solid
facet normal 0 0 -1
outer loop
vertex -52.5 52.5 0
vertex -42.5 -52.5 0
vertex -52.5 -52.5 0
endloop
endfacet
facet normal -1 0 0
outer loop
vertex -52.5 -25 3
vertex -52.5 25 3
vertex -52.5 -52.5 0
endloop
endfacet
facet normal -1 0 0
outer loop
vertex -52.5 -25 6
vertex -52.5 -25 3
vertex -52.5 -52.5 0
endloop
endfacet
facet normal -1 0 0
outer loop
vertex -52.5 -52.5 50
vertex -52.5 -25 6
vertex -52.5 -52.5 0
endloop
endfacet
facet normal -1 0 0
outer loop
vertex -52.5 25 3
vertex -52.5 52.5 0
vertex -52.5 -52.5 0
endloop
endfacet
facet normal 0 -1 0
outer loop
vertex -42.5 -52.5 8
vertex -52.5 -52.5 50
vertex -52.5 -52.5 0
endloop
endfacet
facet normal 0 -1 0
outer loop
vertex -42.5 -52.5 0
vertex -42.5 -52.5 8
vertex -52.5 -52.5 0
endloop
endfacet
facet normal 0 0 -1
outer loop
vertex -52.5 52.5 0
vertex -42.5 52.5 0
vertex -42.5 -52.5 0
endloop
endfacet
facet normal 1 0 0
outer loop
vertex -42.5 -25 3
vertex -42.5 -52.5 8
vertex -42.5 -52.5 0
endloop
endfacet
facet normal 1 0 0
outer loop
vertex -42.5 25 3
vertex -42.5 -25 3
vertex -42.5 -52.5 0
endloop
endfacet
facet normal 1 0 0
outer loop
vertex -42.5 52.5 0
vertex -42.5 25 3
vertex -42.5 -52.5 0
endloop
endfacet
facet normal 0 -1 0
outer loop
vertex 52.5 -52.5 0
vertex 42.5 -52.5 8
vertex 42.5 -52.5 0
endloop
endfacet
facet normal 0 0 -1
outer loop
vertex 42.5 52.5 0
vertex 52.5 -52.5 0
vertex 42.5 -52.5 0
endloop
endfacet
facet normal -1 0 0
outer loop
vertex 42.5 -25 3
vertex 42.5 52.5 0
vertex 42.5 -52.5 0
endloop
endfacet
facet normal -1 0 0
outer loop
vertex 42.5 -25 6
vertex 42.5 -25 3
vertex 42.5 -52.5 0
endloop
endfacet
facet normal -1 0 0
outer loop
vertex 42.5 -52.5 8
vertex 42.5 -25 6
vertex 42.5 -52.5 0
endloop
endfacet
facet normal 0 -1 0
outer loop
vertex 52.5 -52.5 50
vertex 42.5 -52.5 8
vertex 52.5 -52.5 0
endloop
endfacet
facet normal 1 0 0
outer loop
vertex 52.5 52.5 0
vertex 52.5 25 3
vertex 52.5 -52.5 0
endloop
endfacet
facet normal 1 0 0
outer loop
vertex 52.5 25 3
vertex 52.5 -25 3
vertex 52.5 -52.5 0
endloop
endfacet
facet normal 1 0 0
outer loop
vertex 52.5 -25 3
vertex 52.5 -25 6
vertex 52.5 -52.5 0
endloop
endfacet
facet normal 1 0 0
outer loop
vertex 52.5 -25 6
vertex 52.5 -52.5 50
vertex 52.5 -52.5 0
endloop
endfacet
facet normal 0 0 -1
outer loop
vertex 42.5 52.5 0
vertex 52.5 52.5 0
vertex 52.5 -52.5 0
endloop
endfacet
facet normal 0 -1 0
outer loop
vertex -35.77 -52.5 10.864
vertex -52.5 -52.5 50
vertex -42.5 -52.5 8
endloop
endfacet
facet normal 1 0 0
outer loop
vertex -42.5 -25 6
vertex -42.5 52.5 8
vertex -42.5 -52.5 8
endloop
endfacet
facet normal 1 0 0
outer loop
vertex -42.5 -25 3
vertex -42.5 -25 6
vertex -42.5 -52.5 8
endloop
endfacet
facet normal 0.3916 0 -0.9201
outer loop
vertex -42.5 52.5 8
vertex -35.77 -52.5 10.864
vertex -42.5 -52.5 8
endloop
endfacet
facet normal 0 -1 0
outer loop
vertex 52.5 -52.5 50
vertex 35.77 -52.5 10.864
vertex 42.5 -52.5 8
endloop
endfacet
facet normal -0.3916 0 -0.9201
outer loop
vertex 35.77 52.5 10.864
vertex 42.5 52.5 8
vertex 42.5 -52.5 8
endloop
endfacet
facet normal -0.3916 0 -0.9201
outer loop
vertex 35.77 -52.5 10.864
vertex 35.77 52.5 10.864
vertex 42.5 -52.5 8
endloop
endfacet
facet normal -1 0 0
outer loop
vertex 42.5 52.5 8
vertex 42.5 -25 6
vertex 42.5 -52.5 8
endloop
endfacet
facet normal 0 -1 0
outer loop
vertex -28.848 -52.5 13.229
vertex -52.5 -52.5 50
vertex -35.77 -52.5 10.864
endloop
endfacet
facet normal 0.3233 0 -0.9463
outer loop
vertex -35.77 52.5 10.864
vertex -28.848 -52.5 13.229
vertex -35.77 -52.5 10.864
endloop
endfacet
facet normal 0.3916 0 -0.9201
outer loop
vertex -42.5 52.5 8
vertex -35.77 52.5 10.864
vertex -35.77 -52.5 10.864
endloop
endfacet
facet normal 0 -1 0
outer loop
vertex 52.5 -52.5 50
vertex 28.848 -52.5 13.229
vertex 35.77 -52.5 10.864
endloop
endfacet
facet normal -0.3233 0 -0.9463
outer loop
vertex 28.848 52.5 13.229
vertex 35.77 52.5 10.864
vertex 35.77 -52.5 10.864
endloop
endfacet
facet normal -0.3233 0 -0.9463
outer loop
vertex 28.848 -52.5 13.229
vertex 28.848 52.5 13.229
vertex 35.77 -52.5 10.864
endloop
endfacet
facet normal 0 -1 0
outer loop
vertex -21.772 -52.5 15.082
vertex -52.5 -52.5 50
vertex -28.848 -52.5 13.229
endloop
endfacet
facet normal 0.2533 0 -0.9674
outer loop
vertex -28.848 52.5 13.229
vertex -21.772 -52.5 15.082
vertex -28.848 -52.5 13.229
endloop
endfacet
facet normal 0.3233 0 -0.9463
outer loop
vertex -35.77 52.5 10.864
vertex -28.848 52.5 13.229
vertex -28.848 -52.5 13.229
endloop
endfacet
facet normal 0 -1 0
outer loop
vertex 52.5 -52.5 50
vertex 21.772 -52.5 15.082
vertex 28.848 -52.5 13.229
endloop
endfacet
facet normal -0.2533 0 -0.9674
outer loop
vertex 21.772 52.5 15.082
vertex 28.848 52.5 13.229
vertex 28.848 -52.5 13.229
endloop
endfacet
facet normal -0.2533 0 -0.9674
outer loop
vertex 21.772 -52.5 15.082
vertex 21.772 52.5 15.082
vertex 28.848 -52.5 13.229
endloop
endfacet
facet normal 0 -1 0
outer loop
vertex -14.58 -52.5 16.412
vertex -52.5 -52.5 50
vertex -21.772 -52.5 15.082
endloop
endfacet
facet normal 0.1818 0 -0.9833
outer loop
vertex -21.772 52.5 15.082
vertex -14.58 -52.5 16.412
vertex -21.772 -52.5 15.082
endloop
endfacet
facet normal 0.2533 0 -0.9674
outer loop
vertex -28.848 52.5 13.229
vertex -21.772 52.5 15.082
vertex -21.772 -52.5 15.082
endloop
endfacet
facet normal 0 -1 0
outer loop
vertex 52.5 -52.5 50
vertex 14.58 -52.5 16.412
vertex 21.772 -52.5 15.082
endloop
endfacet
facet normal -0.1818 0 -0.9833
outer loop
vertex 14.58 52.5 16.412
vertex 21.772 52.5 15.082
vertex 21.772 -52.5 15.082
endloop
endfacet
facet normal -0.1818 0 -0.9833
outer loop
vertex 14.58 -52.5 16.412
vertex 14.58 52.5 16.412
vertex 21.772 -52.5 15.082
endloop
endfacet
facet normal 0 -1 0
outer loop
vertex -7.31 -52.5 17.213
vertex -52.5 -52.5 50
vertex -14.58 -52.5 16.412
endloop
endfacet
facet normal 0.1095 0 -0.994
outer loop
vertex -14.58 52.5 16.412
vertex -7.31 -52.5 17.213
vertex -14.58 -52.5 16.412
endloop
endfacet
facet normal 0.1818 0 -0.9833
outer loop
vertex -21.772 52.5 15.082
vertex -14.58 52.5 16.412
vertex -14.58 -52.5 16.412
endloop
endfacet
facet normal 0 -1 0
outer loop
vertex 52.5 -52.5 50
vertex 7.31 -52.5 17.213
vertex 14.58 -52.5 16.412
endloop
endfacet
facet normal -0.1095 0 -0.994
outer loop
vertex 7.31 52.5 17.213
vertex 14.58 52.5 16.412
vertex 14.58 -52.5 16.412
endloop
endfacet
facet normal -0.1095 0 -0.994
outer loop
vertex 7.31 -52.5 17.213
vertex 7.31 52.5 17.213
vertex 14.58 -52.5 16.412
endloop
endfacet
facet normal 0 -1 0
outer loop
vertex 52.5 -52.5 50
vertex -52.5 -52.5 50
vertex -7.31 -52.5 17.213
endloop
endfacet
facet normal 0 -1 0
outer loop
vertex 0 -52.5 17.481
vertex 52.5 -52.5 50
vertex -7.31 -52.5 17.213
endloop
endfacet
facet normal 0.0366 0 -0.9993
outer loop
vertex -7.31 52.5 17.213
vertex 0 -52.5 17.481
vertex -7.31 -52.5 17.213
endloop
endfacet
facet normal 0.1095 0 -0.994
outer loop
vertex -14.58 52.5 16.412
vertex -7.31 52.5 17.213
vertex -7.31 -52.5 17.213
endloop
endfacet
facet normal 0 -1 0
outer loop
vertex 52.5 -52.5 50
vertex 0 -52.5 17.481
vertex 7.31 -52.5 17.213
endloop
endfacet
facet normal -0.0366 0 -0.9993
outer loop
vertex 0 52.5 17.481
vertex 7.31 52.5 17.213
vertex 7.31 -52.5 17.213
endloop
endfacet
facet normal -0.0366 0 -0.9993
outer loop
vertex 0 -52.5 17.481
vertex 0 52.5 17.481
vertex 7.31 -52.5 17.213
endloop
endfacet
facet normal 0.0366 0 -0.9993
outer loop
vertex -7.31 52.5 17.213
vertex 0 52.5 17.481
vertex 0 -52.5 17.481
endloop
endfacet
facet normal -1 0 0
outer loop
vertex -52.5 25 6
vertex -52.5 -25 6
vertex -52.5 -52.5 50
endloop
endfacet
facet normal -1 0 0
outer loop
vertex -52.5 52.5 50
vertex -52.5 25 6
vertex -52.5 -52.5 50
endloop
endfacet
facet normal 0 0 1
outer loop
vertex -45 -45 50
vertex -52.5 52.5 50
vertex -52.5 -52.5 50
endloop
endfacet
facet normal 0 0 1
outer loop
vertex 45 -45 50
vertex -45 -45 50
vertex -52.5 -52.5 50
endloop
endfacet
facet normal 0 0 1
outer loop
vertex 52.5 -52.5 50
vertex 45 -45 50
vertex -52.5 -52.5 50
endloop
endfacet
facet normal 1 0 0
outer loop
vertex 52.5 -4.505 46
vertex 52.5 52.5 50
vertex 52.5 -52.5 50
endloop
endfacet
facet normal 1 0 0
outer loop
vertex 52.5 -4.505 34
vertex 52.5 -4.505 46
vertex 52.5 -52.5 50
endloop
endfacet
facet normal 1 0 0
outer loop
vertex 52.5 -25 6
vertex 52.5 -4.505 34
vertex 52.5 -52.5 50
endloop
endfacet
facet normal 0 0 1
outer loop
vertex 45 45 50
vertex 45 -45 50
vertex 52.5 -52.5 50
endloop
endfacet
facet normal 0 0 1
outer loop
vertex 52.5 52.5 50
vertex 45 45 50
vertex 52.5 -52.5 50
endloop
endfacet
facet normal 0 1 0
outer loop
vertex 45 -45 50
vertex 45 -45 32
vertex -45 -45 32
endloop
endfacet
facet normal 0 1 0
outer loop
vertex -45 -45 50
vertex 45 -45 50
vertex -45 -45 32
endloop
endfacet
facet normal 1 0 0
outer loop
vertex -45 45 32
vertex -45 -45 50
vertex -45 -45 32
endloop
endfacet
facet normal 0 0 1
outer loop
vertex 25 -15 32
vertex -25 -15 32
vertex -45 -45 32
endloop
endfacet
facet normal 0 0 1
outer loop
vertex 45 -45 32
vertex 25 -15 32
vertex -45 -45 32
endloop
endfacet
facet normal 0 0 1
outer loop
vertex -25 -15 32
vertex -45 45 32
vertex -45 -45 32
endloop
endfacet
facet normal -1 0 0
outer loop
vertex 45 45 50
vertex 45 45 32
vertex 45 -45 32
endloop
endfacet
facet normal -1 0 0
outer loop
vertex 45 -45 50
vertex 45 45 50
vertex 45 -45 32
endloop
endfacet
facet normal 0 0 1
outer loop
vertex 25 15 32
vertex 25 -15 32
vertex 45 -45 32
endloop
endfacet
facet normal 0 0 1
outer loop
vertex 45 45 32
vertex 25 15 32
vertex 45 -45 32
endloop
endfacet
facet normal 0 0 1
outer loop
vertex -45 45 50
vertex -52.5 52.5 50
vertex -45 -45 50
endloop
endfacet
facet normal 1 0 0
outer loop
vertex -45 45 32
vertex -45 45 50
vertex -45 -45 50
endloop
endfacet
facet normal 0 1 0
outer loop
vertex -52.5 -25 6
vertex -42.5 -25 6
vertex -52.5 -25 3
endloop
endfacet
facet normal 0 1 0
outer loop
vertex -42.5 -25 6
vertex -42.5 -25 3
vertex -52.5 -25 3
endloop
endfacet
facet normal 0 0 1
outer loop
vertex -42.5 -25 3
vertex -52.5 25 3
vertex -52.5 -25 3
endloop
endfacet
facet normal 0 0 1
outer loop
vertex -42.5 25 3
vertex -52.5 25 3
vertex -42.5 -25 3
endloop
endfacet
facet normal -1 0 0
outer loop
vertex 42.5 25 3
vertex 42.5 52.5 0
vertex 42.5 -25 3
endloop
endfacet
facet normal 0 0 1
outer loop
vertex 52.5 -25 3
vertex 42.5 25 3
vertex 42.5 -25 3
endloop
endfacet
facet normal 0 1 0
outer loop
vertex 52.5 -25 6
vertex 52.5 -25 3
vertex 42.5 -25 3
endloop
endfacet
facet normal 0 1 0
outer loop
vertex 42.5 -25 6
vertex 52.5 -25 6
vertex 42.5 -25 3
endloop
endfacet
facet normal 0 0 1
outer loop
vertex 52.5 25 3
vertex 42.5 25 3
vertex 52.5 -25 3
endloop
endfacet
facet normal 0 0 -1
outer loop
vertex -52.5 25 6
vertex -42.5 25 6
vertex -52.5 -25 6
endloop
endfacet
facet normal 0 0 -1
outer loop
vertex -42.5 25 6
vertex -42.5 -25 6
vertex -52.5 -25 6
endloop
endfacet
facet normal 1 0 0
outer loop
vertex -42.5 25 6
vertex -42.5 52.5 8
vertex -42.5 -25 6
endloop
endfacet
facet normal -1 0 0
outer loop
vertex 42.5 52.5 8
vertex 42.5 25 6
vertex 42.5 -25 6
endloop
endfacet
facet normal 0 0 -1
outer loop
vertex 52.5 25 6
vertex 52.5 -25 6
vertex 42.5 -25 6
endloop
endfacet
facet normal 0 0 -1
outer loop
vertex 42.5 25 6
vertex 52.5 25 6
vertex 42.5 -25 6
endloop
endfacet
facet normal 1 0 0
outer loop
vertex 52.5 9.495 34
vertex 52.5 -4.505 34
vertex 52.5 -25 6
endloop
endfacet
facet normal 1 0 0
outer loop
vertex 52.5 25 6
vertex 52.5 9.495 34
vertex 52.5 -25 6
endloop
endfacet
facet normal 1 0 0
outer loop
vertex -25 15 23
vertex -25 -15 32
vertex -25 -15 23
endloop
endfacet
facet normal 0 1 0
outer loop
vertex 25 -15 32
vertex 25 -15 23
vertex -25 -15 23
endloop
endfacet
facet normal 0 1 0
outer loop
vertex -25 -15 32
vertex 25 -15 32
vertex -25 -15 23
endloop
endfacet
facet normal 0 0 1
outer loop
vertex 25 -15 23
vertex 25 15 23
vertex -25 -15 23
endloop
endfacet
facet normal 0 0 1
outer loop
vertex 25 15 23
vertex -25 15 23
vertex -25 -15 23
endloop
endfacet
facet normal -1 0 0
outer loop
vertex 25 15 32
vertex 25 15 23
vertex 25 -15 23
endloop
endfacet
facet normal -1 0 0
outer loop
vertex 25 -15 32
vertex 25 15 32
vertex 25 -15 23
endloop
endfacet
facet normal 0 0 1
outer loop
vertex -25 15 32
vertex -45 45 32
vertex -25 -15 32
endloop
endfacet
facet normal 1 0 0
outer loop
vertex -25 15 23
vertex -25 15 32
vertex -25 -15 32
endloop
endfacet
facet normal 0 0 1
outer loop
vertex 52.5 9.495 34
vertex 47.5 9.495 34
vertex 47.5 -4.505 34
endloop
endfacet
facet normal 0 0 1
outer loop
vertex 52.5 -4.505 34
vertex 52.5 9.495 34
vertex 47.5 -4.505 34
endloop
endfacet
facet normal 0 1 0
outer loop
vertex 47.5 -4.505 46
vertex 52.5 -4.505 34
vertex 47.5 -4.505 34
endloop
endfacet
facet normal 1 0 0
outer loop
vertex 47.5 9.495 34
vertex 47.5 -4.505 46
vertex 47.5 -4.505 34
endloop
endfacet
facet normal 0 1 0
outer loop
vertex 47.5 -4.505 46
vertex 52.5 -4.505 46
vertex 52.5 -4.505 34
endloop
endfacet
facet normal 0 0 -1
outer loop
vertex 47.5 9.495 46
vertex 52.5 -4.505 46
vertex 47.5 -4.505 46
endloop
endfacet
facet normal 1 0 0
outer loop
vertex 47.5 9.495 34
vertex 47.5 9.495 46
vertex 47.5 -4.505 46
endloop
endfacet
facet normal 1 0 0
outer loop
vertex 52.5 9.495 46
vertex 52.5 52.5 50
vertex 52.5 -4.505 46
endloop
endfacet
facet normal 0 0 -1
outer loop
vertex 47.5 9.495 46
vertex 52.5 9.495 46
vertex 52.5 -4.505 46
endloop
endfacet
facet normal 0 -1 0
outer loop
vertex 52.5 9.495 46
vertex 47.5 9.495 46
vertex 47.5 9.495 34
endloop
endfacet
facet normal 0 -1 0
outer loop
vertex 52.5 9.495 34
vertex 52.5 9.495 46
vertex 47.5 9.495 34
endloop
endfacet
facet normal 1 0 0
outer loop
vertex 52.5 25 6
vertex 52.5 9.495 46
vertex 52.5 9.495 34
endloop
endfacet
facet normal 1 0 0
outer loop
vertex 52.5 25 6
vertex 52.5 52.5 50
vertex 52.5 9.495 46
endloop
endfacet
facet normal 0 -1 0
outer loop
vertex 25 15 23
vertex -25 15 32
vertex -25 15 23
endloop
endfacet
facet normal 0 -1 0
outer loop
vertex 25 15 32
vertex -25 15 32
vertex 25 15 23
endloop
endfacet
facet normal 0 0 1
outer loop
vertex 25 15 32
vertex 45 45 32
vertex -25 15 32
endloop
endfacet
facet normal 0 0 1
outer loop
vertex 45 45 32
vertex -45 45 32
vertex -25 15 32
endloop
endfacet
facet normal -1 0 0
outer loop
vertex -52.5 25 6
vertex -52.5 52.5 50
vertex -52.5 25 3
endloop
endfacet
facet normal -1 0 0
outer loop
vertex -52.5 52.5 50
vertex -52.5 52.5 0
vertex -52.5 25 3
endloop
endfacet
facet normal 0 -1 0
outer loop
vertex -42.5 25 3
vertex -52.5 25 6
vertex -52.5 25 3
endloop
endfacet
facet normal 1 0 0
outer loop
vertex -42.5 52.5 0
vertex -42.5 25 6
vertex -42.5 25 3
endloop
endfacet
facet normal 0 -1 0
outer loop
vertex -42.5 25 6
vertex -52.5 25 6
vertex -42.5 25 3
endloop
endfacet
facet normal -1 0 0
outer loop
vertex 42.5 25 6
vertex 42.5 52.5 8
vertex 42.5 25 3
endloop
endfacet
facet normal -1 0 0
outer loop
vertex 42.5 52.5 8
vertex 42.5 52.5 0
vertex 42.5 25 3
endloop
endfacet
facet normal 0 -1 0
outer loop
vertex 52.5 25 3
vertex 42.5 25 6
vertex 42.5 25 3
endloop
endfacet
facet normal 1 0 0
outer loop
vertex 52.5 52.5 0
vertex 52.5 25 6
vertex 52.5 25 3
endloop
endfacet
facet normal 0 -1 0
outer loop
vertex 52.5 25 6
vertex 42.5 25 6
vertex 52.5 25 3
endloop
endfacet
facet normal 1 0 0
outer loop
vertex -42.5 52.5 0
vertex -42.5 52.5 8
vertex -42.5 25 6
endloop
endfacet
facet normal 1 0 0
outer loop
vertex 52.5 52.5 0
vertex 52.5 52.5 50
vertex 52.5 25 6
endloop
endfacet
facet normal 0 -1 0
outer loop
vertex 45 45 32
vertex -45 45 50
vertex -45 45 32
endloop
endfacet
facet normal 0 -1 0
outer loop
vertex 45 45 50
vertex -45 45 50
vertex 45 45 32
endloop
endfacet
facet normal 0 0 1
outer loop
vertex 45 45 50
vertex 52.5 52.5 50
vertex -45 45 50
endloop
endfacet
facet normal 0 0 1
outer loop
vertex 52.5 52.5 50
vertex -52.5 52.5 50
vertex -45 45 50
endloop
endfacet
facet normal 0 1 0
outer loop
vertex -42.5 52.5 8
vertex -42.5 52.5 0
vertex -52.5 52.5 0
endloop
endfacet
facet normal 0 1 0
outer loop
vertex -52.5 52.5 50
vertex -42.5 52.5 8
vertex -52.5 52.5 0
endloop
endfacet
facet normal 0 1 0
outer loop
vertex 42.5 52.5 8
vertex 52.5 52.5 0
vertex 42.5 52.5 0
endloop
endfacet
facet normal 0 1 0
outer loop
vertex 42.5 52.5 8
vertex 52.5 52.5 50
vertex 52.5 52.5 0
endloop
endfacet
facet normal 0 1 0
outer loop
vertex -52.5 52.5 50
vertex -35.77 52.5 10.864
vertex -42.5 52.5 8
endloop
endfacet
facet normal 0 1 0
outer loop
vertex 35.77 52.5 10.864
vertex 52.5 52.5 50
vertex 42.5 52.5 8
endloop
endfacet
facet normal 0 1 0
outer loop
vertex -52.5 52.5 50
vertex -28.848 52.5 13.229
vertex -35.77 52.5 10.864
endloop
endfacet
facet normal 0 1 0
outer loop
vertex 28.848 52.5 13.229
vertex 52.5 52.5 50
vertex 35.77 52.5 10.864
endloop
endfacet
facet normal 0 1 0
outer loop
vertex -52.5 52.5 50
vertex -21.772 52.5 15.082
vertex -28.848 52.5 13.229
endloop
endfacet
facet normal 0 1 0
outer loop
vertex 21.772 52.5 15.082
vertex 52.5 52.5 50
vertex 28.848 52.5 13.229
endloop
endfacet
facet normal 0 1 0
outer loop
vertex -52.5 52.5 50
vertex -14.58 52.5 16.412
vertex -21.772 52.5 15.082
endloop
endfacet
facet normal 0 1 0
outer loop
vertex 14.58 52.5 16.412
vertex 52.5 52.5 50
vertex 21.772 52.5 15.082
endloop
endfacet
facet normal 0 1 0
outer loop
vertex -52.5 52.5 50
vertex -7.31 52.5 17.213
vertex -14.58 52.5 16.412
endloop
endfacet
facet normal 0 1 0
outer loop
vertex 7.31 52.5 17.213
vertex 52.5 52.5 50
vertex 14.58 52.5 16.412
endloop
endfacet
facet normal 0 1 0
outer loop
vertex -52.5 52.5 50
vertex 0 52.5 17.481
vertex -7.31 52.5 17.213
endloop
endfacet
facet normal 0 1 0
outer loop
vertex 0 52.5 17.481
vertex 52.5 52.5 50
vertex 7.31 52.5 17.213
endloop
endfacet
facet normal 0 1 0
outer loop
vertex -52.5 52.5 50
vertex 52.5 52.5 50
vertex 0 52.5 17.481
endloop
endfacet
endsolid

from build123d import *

# Parameters (mm, degrees)
SKETCH1_W           = 105
SKETCH1_H           = 105
BOSS_EXTRUDE1_DEPTH = 50
CUT_EXTRUDE1_DEPTH  = 106
SKETCH3_W           = 90
SKETCH3_H           = 90
CUT_EXTRUDE2_DEPTH  = 18
SKETCH4_W           = 50
SKETCH4_H           = 30
CUT_EXTRUDE3_DEPTH  = 9
SKETCH5_W           = 3
SKETCH5_H           = 50
CUT_EXTRUDE4_DEPTH  = 106
SKETCH7_W           = 12
SKETCH7_H           = 14
CUT_EXTRUDE5_DEPTH  = 5


with BuildPart() as part:
    # Sketch1 → Boss-Extrude1 (new body)
    with BuildSketch(Plane.XY):
        Rectangle(SKETCH1_W, SKETCH1_H)
    extrude(amount=BOSS_EXTRUDE1_DEPTH)

    # Sketch2 → Cut-Extrude1 (cut, through all)
    with BuildSketch(Plane.XZ.offset(52.5)):
        with BuildLine():
            Line((-42.5, 8), (-42.5, 0))
            Line((-42.5, 0), (42.5, 0))
            Line((42.5, 0), (42.5, 8))
            ThreePointArc((42.5, 8), (0, 17.480665049), (-42.5, 8))
        make_face()
    extrude(amount=-CUT_EXTRUDE1_DEPTH, mode=Mode.SUBTRACT)

    # Sketch3 → Cut-Extrude2 (cut)
    with BuildSketch(Plane.XY.offset(50)):
        Rectangle(SKETCH3_W, SKETCH3_H)
    extrude(amount=-CUT_EXTRUDE2_DEPTH, mode=Mode.SUBTRACT)

    # Sketch4 → Cut-Extrude3 (cut)
    with BuildSketch(Plane.XY.offset(32)):
        Rectangle(SKETCH4_W, SKETCH4_H)
    extrude(amount=-CUT_EXTRUDE3_DEPTH, mode=Mode.SUBTRACT)

    # Sketch5 → Cut-Extrude4 (cut, through all)
    with BuildSketch(Plane.ZY.offset(52.5)):
        with Locations((4.5, 0)):
            Rectangle(SKETCH5_W, SKETCH5_H)
    extrude(amount=-CUT_EXTRUDE4_DEPTH, mode=Mode.SUBTRACT)

    # Sketch7 → Cut-Extrude5 (cut)
    with BuildSketch(Plane(origin=(52.5, 0, 0), x_dir=(0, 0, -1), z_dir=(1, 0, 0))):
        with Locations((-40, 2.495495841)):
            Rectangle(SKETCH7_W, SKETCH7_H)
    extrude(amount=-CUT_EXTRUDE5_DEPTH, mode=Mode.SUBTRACT)


solid = part.part
